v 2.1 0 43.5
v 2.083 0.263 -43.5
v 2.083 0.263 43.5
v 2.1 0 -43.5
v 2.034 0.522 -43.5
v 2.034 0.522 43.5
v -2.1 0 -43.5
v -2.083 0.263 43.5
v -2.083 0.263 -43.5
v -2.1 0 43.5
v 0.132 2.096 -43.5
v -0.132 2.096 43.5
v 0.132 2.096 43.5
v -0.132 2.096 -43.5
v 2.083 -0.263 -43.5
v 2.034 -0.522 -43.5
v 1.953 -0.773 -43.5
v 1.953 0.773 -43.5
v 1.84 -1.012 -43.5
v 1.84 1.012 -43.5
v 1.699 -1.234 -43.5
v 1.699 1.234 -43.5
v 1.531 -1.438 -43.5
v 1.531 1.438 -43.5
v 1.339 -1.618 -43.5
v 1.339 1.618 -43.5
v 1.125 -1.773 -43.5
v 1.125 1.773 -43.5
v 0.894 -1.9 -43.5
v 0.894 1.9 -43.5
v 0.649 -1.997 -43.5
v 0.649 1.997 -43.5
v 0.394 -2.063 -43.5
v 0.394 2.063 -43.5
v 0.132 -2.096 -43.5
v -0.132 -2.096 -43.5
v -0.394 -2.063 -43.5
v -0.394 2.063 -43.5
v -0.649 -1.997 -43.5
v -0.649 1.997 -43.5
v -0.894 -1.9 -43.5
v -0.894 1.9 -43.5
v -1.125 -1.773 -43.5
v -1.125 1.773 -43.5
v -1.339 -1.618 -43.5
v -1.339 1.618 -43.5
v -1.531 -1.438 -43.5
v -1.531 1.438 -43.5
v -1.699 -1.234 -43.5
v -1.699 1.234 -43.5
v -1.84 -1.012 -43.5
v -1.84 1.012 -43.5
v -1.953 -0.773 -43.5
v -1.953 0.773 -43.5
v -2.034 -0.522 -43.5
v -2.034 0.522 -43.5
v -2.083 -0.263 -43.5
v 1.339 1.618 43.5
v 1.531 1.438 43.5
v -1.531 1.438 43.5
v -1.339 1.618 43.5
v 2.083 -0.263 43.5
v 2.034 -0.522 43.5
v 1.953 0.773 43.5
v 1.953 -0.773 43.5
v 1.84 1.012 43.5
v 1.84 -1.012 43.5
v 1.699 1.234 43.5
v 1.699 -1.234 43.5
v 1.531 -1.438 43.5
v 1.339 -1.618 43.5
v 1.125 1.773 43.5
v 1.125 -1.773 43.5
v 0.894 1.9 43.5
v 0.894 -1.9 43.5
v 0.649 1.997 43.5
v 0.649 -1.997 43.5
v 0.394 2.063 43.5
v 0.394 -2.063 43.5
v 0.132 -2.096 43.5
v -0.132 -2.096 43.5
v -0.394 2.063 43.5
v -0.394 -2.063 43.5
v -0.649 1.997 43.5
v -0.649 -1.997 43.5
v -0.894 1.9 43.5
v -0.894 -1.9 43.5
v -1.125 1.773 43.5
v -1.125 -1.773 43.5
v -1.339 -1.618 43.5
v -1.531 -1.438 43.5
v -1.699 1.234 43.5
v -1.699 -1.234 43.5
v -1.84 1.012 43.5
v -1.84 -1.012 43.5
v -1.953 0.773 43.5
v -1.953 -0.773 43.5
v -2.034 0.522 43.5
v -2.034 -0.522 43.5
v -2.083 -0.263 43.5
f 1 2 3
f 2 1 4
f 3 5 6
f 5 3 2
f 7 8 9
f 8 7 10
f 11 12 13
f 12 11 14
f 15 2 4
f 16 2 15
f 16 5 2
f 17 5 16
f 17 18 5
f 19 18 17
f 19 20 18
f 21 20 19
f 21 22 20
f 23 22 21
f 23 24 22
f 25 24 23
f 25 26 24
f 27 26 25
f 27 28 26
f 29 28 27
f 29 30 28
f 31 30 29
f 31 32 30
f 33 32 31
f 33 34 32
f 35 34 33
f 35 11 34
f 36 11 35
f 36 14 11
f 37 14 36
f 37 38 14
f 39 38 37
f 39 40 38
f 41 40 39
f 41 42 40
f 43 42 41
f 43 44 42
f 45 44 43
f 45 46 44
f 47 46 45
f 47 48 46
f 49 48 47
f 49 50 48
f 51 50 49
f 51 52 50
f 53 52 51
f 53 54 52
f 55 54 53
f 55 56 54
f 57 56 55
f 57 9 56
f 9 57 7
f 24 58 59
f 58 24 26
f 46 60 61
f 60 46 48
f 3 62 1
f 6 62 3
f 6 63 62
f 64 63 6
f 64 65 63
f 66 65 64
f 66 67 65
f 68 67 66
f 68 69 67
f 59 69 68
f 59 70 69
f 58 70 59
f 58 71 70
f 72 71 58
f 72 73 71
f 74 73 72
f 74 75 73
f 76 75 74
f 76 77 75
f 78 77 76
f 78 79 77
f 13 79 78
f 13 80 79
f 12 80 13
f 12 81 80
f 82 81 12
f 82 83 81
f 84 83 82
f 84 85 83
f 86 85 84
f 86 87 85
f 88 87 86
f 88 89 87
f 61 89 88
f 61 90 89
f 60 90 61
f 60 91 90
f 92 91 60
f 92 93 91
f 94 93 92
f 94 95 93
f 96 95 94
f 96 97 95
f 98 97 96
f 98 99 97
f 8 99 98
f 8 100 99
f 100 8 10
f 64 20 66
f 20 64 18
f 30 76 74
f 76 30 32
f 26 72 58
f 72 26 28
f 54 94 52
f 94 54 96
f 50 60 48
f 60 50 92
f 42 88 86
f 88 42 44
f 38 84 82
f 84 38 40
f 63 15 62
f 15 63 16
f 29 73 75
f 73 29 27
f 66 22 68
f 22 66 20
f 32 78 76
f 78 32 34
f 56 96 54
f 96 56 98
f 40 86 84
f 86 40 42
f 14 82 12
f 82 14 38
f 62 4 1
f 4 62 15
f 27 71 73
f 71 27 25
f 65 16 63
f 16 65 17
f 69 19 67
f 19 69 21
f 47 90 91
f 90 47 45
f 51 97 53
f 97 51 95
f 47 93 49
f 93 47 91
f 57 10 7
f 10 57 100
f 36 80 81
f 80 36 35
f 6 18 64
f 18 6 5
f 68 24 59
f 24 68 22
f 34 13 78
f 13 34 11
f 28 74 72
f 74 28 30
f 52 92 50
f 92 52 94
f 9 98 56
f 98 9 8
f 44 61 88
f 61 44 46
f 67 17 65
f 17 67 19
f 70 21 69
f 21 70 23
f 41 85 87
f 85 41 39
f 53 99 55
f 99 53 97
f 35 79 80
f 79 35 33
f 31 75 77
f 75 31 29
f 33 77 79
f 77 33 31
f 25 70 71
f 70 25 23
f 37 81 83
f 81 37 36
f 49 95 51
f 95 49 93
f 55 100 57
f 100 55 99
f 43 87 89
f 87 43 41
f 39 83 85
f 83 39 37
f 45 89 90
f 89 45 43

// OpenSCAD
$fn = 50;


difference() {
	union() {
		translate(v = [0, 0, -43.5000000000]) {
			cylinder(h = 87, r = 2.1000000000);
		}
	}
	union() {
		translate(v = [0, 0, -100.0000000000]) {
			cylinder(h = 200, r = 0);
		}
	}
}
